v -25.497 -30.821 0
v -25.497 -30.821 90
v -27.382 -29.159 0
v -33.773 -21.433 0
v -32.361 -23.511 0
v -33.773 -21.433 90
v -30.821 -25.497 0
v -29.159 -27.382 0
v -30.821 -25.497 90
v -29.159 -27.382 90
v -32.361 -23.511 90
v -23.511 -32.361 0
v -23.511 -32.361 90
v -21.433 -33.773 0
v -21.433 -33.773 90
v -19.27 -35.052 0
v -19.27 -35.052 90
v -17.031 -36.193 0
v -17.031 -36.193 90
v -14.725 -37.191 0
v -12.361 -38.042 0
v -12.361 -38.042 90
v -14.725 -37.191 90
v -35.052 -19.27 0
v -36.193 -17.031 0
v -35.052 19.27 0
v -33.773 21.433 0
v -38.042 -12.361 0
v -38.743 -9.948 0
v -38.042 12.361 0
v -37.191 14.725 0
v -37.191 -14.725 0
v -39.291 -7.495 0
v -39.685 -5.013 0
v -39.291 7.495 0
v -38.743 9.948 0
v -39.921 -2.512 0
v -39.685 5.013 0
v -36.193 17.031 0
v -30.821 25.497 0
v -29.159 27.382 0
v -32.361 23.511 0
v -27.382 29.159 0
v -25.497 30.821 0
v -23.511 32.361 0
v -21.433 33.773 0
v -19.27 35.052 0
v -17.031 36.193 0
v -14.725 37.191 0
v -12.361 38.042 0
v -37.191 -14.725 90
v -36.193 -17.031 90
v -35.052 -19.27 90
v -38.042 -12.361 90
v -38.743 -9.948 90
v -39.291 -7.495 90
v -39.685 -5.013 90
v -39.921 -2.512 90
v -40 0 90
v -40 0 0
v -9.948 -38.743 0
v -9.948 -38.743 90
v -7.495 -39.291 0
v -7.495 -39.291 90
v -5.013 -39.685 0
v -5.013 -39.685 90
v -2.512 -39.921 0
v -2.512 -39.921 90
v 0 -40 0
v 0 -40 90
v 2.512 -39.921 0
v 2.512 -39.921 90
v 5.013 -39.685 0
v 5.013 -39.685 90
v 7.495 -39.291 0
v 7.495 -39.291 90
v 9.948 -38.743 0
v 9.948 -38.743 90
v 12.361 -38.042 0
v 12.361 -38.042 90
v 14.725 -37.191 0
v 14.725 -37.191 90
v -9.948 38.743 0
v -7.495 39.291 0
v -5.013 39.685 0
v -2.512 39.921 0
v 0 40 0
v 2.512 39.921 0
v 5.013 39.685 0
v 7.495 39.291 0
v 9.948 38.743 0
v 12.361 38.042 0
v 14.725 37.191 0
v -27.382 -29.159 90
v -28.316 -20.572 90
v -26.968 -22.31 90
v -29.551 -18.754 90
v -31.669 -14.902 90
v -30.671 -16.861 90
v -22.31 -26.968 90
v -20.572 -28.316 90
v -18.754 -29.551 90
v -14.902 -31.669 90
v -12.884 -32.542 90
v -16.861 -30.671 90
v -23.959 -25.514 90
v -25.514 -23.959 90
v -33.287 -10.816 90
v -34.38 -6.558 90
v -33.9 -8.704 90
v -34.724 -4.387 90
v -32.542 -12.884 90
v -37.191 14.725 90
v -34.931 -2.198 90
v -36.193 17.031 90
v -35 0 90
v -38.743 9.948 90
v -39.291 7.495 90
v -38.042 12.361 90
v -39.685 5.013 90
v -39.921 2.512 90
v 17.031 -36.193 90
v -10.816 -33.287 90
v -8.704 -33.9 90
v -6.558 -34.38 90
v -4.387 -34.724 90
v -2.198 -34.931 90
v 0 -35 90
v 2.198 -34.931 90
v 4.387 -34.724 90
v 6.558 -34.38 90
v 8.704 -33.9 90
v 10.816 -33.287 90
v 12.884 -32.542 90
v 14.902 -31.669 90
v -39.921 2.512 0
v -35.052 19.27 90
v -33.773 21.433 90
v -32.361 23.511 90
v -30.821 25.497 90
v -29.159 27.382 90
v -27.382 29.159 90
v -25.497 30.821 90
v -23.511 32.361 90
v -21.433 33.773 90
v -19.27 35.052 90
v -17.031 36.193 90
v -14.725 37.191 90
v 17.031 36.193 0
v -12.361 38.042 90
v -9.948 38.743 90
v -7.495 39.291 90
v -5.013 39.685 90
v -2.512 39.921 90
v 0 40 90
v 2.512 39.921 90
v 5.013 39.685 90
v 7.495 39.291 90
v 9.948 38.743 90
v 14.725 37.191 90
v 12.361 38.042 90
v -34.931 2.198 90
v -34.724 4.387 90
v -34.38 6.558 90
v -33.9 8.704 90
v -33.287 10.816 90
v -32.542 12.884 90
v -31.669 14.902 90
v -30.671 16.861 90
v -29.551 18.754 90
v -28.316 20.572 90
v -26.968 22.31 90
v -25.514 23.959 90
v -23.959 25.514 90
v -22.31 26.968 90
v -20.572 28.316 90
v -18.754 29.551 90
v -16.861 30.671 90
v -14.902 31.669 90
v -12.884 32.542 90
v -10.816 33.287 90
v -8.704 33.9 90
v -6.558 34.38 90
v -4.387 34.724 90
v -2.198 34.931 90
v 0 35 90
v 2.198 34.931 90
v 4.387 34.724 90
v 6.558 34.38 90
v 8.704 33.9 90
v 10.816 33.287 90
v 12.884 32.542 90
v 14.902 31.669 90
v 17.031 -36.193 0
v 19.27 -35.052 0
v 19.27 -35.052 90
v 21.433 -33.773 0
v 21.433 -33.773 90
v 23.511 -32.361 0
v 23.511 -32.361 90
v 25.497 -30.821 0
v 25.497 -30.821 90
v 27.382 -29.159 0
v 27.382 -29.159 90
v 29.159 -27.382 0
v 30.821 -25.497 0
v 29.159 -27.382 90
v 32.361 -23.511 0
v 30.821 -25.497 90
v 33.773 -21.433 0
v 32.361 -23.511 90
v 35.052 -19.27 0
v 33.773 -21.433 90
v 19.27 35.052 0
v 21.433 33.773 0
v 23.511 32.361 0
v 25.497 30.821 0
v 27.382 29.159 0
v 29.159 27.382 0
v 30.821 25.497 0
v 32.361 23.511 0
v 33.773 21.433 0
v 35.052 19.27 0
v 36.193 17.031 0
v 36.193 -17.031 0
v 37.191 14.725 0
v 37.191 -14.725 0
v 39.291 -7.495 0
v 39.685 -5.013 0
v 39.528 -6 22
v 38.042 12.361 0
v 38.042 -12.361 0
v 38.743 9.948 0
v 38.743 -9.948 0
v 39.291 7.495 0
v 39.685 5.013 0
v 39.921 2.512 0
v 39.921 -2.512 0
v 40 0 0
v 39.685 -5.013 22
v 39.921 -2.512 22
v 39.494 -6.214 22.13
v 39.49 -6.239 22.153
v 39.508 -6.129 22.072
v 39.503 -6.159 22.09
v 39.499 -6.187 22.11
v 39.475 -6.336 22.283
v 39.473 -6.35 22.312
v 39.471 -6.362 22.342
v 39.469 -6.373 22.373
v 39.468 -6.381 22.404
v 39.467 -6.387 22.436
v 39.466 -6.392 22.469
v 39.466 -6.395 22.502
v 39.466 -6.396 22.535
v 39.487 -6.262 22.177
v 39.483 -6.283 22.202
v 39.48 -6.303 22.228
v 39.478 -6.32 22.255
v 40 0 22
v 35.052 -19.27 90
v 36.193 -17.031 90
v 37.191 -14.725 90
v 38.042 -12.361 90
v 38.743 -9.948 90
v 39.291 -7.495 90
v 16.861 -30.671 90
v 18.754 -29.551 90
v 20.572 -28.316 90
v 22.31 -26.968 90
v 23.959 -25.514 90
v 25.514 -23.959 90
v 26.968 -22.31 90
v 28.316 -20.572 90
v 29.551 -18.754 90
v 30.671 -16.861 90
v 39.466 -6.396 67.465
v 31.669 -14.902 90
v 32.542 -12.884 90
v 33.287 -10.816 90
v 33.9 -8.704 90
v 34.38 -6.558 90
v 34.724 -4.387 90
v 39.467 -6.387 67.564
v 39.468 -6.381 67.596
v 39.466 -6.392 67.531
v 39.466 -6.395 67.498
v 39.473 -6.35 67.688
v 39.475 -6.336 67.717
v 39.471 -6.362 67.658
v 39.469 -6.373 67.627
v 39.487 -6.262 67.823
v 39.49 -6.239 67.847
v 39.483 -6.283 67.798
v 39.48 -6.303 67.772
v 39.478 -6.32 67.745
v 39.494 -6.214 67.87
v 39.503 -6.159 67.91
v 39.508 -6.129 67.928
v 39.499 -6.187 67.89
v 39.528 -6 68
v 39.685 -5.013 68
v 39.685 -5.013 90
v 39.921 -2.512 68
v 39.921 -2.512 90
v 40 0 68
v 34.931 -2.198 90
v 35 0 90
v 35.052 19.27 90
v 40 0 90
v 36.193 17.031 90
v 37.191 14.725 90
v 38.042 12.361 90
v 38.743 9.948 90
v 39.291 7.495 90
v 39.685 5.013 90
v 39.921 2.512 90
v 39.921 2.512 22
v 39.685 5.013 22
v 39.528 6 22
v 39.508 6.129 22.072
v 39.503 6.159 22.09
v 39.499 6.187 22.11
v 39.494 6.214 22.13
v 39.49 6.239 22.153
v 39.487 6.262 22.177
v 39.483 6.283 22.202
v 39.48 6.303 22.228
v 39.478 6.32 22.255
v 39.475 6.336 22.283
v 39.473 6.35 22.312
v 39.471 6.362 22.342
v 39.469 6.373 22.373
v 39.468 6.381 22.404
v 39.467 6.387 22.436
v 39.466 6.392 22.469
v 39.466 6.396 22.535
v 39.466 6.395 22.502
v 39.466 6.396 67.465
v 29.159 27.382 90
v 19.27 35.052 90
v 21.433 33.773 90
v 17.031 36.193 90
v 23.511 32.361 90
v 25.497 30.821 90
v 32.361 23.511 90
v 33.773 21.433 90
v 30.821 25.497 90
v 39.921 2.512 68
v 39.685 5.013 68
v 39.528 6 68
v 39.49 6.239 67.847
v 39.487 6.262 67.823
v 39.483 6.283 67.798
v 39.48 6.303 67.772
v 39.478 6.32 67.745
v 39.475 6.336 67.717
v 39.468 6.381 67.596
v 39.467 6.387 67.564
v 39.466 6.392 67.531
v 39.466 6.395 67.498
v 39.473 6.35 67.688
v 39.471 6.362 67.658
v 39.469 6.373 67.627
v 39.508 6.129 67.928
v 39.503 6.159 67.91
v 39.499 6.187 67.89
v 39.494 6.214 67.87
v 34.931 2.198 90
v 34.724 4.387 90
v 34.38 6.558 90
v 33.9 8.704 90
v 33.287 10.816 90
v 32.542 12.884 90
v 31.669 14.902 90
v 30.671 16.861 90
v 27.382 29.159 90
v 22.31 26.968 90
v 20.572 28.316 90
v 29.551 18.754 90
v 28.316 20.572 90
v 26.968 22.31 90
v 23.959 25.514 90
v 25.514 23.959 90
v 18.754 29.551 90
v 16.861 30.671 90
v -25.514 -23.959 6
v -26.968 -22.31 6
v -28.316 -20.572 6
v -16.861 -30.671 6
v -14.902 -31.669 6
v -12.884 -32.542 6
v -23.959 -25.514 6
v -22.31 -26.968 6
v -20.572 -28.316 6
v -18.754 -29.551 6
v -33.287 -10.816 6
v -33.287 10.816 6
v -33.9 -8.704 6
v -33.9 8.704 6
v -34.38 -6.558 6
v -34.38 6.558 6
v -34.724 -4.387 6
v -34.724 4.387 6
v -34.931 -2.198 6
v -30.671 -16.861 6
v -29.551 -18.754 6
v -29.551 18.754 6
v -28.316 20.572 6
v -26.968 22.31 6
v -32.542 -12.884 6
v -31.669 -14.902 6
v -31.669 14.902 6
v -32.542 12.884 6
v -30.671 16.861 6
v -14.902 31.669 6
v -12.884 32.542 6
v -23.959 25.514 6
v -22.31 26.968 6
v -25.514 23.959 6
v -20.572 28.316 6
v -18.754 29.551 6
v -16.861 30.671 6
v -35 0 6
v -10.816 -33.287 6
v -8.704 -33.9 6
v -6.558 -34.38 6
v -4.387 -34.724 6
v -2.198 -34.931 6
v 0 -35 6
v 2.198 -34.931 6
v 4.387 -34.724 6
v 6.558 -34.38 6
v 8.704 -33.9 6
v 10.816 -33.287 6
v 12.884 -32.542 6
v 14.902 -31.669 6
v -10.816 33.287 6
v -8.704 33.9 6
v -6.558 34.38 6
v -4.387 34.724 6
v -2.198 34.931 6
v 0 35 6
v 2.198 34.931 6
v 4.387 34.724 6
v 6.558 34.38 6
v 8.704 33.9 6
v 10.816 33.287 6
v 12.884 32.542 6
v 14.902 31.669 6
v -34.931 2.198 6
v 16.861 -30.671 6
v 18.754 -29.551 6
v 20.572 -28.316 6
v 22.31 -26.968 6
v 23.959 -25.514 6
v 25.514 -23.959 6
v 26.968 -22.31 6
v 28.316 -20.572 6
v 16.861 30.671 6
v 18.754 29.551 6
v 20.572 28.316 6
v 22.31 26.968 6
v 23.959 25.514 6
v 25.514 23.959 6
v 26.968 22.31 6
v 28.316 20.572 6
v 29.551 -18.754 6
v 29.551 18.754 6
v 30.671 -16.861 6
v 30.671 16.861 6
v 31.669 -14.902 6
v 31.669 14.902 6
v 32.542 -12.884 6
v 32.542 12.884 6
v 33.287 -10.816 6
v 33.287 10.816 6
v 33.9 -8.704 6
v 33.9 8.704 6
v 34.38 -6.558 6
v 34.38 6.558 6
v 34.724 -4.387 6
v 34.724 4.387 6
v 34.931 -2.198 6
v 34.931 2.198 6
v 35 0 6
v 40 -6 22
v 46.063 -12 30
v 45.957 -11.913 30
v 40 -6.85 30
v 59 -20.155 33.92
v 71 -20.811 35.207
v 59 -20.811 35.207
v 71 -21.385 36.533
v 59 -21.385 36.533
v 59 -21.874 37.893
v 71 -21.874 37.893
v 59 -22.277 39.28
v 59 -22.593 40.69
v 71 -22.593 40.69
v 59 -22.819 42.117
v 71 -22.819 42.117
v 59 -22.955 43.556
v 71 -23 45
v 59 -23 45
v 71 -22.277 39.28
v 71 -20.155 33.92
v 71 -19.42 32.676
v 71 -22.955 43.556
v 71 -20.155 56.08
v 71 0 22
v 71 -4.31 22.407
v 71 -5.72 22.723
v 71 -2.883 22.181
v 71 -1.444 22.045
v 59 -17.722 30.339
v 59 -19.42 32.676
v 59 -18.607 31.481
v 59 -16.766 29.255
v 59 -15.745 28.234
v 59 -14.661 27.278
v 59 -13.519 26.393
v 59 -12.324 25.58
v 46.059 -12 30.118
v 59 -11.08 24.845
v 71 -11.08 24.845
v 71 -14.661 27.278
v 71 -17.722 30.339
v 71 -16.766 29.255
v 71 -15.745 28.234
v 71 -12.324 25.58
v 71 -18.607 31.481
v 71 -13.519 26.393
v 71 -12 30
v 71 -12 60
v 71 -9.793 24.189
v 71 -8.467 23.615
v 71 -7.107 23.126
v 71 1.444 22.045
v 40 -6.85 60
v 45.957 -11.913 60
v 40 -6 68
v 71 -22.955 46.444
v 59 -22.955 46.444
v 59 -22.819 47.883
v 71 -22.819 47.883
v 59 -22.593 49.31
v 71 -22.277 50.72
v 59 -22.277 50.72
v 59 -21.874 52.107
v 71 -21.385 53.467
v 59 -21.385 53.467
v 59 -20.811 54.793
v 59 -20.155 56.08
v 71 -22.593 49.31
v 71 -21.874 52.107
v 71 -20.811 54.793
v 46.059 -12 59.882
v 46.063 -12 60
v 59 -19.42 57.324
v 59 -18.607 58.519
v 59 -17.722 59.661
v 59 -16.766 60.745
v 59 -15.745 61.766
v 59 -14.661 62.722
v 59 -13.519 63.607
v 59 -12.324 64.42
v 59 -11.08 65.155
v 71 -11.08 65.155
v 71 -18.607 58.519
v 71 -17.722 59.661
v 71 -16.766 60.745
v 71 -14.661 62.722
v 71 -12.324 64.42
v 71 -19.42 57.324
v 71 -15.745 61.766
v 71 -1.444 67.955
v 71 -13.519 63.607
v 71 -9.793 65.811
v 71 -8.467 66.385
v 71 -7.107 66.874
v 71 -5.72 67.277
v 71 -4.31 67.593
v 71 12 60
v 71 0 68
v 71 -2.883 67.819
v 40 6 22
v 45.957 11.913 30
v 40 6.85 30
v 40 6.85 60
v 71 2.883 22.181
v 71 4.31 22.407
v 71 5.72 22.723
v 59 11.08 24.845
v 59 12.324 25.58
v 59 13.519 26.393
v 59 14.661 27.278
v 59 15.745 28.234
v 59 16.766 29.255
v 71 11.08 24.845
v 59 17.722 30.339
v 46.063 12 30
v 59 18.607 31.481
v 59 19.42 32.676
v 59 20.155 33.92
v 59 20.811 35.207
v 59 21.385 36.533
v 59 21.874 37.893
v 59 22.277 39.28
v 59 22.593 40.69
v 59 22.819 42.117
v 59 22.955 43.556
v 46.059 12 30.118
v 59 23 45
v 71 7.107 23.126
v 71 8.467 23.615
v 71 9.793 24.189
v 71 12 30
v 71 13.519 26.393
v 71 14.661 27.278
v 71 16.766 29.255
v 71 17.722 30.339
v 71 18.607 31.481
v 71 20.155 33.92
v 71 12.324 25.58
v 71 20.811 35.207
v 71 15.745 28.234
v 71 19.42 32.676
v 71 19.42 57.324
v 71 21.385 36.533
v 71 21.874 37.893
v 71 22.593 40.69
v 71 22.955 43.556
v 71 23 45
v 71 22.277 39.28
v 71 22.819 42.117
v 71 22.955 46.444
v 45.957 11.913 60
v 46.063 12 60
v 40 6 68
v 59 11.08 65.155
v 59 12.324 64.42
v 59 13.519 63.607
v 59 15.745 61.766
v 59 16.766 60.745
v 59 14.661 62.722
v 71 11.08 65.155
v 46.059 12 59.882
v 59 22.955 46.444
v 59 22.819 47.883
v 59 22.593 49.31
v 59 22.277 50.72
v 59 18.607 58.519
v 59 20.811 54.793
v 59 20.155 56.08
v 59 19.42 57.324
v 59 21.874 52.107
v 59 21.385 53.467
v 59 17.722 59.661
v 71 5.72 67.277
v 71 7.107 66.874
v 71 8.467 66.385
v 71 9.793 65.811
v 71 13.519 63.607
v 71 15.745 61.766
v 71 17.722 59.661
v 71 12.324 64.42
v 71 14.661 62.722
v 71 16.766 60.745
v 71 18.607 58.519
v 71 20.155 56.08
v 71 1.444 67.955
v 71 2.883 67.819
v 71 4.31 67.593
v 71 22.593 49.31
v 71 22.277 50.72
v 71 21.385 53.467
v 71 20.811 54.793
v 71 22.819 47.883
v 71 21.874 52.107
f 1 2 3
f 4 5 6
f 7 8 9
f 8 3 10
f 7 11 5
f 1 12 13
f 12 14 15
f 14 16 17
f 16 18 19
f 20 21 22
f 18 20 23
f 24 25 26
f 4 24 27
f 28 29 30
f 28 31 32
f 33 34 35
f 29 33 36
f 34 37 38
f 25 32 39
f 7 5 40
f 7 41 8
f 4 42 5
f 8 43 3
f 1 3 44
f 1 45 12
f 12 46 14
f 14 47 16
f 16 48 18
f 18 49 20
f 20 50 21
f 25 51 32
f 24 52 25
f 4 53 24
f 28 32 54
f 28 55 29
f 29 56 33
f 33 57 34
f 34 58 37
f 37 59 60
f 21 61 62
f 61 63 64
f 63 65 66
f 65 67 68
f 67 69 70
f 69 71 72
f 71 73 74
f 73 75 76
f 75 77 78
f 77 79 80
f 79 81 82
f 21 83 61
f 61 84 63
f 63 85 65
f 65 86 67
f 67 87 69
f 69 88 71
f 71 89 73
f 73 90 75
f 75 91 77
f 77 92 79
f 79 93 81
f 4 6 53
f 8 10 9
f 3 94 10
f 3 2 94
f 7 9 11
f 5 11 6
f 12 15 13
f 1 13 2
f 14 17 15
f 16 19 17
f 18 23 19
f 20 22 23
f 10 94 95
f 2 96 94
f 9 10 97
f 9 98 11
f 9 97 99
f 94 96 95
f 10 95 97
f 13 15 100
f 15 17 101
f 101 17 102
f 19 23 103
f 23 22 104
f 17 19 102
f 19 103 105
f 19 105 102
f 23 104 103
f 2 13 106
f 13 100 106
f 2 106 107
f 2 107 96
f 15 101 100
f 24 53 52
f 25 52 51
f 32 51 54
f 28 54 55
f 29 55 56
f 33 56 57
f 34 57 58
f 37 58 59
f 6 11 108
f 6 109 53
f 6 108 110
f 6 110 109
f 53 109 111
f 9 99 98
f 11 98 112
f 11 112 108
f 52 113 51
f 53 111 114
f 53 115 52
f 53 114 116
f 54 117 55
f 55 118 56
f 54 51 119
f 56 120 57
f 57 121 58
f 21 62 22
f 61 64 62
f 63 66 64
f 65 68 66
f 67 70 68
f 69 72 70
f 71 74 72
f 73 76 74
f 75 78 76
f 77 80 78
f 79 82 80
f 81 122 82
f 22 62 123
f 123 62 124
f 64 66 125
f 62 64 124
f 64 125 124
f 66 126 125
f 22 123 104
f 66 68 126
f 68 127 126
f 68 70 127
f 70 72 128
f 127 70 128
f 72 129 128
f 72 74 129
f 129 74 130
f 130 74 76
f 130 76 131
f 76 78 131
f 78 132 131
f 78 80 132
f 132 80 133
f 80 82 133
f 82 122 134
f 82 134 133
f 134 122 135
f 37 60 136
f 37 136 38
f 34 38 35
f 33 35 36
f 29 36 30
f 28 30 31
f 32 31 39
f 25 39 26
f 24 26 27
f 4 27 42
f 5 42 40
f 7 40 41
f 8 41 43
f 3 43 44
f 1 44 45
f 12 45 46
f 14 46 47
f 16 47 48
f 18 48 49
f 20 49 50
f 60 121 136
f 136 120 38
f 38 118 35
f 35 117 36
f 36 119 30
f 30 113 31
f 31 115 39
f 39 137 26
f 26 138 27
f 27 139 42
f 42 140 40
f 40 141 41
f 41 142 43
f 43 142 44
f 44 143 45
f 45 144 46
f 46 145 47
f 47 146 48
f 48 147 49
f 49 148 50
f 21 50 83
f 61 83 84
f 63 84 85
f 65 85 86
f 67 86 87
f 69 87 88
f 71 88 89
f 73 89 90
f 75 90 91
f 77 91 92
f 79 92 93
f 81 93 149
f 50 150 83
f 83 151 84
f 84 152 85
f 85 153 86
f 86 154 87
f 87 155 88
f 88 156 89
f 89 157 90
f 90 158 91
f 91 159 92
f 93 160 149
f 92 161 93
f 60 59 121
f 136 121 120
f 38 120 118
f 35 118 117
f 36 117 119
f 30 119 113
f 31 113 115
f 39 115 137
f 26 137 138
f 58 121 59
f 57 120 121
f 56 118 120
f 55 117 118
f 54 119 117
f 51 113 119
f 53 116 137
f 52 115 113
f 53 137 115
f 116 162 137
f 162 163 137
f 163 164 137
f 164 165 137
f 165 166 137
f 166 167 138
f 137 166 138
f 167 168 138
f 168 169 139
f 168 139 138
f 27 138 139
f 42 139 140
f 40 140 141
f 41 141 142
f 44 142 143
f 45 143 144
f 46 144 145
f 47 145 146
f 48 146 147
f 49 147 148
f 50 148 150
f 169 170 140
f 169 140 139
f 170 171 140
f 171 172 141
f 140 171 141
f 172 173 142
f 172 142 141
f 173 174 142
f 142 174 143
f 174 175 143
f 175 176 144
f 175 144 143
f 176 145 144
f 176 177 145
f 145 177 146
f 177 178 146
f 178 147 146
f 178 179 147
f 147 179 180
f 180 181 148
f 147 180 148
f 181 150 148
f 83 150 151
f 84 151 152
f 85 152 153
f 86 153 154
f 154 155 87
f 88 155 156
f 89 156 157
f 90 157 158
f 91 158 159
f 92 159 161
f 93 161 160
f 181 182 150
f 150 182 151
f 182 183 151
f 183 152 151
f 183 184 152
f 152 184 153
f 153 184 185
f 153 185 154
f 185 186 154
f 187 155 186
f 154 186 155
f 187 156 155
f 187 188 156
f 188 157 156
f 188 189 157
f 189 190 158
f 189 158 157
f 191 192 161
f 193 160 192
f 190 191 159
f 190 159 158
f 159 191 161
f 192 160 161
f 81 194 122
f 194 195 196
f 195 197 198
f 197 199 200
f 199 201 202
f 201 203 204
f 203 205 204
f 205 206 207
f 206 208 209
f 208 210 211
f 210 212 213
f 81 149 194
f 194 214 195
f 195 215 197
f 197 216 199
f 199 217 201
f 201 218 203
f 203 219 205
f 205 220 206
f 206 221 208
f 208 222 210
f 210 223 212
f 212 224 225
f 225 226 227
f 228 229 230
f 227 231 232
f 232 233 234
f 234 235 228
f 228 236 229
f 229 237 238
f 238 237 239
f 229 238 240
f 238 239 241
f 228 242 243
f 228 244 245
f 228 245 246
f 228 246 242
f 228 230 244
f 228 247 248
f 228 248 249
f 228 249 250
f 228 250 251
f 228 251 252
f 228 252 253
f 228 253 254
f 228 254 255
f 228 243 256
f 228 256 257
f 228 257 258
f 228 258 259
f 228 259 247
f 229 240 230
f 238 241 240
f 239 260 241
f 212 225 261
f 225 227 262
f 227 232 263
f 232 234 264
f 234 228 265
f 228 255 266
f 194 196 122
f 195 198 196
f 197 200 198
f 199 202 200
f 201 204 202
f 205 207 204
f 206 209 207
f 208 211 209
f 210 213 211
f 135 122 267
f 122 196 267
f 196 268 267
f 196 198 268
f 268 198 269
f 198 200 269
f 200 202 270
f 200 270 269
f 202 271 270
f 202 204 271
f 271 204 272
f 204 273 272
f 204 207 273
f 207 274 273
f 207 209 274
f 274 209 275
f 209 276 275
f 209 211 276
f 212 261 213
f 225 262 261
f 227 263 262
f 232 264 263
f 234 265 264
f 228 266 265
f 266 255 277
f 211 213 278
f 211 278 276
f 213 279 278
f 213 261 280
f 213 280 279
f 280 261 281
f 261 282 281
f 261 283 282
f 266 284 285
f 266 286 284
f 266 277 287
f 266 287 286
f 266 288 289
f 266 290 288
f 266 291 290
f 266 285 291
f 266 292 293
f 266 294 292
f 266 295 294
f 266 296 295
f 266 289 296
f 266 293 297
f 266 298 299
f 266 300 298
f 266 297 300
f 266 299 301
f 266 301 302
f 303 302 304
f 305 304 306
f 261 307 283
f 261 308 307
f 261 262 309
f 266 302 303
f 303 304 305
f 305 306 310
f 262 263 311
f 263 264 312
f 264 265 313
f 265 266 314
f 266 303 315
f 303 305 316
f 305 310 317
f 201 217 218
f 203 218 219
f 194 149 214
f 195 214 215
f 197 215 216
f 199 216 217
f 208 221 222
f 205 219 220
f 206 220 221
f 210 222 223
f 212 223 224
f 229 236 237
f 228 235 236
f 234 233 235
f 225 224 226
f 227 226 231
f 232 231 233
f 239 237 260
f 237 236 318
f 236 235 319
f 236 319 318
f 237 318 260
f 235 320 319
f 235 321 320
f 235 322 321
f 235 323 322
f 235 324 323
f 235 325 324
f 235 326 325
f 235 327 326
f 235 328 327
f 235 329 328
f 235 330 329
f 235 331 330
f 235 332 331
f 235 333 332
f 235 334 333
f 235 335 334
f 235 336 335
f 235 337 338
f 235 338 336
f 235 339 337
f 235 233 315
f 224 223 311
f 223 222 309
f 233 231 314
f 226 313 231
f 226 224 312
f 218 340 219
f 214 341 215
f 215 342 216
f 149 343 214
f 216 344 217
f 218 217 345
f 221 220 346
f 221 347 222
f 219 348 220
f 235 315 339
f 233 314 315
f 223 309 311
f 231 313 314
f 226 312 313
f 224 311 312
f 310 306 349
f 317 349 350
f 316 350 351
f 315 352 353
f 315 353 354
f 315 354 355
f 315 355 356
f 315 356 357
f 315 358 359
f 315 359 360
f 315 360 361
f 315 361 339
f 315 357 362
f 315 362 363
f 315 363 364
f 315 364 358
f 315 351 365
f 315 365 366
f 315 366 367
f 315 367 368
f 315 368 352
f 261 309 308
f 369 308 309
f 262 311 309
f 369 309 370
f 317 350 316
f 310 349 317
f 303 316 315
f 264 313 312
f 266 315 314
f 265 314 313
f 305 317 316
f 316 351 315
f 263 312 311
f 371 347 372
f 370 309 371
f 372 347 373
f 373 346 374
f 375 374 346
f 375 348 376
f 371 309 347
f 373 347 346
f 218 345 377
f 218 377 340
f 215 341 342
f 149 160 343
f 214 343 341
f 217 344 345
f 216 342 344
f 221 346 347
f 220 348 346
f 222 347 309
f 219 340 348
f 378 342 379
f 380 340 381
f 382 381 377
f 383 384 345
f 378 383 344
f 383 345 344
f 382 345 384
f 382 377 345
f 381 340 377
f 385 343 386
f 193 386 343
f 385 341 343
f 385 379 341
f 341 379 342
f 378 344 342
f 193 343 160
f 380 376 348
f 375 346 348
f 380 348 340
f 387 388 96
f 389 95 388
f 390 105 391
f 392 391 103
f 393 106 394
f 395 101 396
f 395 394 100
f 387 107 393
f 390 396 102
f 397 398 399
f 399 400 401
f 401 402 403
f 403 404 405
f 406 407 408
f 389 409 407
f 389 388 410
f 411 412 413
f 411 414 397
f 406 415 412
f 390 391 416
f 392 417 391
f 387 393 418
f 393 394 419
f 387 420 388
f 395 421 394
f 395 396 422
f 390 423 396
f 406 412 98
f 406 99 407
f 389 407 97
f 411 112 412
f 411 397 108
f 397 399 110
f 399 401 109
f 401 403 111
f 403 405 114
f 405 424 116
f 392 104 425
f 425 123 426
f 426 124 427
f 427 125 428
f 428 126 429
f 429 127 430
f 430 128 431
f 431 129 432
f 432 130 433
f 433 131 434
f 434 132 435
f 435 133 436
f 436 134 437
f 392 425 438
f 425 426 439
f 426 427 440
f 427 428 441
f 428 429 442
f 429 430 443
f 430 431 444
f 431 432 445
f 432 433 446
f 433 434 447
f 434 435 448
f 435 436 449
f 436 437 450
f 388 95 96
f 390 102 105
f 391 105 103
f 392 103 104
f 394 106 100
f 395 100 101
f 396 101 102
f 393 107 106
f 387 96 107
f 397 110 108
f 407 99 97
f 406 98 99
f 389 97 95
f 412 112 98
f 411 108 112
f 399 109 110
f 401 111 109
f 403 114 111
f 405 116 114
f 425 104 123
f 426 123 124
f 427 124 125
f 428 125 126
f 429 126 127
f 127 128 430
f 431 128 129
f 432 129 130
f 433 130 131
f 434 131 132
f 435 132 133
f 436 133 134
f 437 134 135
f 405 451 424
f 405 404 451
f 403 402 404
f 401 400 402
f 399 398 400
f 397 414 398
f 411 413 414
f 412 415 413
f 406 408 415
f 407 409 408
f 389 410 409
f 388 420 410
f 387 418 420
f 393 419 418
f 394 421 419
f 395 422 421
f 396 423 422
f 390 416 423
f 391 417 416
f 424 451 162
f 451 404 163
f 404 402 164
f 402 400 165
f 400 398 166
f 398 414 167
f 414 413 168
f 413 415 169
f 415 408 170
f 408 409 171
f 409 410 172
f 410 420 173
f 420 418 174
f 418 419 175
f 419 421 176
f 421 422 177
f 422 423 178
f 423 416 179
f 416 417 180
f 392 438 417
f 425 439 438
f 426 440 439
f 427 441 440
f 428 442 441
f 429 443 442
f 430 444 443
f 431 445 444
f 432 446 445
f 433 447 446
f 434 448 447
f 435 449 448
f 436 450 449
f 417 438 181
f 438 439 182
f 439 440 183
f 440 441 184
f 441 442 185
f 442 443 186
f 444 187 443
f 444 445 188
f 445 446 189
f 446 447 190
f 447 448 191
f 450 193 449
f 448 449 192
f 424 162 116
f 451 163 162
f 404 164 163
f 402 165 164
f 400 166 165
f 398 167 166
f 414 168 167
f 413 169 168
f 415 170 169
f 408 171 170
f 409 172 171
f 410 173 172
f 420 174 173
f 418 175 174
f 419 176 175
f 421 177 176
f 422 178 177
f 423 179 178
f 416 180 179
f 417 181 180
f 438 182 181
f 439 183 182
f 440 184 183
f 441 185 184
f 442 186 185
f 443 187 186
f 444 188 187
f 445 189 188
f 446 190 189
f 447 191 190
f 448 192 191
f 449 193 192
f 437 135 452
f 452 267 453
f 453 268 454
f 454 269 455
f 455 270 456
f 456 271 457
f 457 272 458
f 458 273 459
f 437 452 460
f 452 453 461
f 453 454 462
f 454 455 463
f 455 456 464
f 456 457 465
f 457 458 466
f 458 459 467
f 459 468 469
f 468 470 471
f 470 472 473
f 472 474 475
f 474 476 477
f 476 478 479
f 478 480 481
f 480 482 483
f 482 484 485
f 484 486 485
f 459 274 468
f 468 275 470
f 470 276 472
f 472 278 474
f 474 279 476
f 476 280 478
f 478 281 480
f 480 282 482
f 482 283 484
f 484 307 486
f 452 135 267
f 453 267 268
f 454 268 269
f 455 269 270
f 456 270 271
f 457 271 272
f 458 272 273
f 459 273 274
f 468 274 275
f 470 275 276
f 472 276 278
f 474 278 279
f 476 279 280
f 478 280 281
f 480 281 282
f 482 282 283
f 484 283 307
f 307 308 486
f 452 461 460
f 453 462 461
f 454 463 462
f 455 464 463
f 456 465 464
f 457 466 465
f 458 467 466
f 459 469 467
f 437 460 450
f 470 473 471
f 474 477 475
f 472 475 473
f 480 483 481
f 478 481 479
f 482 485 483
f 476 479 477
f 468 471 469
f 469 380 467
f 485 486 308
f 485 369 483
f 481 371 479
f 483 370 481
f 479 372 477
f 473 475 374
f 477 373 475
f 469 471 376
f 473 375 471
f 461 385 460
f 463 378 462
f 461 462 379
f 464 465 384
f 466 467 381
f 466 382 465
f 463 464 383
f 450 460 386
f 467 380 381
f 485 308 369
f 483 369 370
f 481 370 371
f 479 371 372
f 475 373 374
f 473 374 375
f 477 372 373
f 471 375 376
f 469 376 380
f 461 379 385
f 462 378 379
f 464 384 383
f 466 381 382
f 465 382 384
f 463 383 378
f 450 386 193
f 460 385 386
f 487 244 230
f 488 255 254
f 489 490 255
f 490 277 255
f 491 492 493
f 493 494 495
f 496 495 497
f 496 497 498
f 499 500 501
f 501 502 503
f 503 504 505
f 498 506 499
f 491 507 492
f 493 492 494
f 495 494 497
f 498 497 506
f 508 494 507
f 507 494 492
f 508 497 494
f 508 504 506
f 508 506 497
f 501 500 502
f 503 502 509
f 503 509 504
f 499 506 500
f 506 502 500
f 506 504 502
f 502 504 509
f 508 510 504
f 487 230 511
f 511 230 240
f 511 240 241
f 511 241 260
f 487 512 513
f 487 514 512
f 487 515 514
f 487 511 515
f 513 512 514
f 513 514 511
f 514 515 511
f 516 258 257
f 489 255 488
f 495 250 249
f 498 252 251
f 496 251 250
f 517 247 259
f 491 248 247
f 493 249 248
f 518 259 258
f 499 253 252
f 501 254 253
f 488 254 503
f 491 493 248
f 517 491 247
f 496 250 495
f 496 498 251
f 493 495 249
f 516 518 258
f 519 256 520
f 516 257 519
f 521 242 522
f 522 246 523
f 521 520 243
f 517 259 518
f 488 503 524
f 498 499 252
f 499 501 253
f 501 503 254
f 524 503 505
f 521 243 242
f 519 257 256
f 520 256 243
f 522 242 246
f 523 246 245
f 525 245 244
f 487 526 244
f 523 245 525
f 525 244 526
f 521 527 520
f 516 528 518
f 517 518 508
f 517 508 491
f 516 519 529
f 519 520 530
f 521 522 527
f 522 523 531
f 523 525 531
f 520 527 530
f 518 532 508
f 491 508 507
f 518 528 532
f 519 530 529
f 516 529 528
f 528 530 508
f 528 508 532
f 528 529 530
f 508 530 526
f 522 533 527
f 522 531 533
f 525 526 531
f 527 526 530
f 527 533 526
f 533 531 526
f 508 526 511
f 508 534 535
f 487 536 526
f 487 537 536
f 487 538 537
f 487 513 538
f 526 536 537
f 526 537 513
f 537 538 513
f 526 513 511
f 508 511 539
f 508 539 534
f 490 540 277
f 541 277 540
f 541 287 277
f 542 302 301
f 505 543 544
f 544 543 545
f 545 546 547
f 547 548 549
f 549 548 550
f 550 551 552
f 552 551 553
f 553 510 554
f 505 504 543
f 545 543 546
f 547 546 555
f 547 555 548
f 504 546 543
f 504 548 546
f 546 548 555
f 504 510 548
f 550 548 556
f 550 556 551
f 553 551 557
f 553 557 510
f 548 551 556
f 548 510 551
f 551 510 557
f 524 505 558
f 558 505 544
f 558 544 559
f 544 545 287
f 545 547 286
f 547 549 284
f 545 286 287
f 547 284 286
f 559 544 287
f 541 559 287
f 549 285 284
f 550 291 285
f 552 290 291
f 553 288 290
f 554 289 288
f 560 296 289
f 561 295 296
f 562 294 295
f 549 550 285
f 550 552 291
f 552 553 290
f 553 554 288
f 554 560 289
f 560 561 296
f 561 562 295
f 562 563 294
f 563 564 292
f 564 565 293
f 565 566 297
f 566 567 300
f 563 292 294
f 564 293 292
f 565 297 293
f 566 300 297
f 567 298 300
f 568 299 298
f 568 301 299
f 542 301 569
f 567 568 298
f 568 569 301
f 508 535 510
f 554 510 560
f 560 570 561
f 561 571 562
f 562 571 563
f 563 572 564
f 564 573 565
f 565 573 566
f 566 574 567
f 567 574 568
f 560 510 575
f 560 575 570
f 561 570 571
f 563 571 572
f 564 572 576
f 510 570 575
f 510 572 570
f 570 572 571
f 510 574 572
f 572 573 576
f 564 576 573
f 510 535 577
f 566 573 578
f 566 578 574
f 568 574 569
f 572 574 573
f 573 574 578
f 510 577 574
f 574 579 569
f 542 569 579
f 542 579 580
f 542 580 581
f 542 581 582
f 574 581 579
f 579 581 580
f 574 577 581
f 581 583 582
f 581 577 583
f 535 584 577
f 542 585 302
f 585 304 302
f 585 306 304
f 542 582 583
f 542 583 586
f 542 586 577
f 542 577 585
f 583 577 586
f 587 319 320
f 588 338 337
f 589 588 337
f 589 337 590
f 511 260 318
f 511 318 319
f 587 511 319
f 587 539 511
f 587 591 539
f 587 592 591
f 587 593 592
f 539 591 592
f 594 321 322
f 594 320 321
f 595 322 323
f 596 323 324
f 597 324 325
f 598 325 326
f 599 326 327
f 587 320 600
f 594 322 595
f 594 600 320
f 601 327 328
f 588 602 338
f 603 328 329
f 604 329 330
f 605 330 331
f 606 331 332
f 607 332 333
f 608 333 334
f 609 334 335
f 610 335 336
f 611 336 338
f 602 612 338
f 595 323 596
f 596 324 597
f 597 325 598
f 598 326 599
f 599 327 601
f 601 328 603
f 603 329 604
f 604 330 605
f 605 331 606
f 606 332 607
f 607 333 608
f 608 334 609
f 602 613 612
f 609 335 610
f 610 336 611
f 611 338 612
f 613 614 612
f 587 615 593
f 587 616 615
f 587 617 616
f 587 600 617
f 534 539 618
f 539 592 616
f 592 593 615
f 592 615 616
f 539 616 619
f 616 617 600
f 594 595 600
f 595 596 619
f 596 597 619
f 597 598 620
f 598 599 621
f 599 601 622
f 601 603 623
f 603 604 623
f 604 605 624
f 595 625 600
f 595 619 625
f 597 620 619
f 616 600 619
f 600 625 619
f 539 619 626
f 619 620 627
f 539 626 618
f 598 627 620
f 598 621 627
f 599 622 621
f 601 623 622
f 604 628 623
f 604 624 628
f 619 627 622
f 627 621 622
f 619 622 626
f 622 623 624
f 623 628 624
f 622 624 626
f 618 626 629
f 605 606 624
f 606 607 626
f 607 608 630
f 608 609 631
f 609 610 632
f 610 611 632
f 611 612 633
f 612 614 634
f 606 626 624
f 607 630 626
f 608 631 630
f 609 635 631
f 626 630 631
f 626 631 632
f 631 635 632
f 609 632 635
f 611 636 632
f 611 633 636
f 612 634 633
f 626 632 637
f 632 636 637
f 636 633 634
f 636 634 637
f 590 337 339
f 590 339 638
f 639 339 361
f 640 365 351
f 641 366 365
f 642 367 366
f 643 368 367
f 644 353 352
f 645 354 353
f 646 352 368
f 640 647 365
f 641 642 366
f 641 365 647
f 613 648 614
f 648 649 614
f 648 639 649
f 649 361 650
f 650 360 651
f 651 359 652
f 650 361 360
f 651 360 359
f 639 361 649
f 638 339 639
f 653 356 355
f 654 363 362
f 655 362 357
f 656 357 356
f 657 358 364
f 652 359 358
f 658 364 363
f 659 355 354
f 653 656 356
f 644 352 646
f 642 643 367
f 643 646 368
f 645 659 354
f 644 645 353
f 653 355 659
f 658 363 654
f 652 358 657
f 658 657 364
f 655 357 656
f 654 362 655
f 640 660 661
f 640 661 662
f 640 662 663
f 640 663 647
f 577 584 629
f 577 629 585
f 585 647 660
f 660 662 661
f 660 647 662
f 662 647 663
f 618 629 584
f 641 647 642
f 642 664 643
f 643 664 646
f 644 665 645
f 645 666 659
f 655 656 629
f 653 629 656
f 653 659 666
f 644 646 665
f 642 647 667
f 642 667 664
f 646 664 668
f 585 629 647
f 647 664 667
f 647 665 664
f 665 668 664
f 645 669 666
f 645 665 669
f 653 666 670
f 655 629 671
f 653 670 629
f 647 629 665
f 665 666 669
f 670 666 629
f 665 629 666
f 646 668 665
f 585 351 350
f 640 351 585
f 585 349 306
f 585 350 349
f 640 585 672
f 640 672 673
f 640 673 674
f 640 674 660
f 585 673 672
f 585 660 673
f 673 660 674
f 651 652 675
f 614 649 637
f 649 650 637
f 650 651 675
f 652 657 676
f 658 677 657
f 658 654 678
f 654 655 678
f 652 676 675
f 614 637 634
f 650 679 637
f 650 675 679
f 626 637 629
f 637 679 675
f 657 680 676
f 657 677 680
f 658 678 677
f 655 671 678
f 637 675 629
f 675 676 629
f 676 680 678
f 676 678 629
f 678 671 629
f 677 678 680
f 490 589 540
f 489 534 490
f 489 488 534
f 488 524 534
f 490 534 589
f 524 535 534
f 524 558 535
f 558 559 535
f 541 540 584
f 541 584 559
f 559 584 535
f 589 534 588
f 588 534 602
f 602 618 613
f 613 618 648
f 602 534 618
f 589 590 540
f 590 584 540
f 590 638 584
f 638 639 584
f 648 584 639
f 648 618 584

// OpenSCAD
$fn = 100; // 滑らかな曲線にするための解像度

// --- 本体パラメータ ---
mug_outer_d = 80;
mug_inner_d = 70;
mug_h = 90;
mug_bottom_thickness = 6;

// --- 取手パラメータ ---
handle_inner_h = 30;        // 指を入れる空間の高さ
handle_inner_w = 25;        // 指を入れる空間の幅 (本体からの距離)
handle_thickness = 8;       // 取手の肉厚
handle_y_width = 12;        // 取手の奥行き (Y軸方向の太さ)

// 本体と取手を結合
union() {
    // 1. マグ本体
    difference() {
        // 外側の円筒
        cylinder(h = mug_h, d = mug_outer_d);
        
        // 内側をくり抜くための円筒
        // 底面の厚みを残すために Z 方向にずらす
        translate([0, 0, mug_bottom_thickness])
            cylinder(h = mug_h + 1, d = mug_inner_d); // 確実に貫通させるため少し高くする
    }

    // 2. 取手
    // D字形状を CSG (Constructive Solid Geometry) で作成
    // - hull() を使って、本体側の平面部と外側の円筒部を滑らかに繋ぐ
    // - difference() で指を入れる穴を空ける
    
    // 取手全体の高さを計算
    handle_total_h = handle_inner_h + 2 * handle_thickness;
    // 取手をマグカップの高さ方向中央に配置するためのZ座標を計算
    handle_z_pos = (mug_h - handle_total_h) / 2;

    difference() {
        // D字の外形 (ソリッド)
        hull() {
            // 本体との接続部分 (平らな面を作るための薄い直方体)
            // 確実に結合させるために1mmめり込ませる
            translate([mug_outer_d/2 - 1, -handle_y_width/2, handle_z_pos])
                cube([1, handle_y_width, handle_total_h]);

            // D字のカーブ部分 (円筒)
            translate([mug_outer_d/2 + handle_inner_w, 0, handle_z_pos + handle_total_h/2])
                rotate([0, 90, 0])
                    cylinder(h = handle_y_width, r = handle_total_h/2, center = true);
        }
        
        // くり抜く内側の穴 (直方体)
        // 確実に貫通させるため、各軸で少しだけ大きくする
        translate([mug_outer_d/2, -handle_y_width, handle_z_pos + handle_thickness])
            cube([handle_inner_w + handle_thickness + 1, handle_y_width * 2, handle_inner_h]);
    }
}
